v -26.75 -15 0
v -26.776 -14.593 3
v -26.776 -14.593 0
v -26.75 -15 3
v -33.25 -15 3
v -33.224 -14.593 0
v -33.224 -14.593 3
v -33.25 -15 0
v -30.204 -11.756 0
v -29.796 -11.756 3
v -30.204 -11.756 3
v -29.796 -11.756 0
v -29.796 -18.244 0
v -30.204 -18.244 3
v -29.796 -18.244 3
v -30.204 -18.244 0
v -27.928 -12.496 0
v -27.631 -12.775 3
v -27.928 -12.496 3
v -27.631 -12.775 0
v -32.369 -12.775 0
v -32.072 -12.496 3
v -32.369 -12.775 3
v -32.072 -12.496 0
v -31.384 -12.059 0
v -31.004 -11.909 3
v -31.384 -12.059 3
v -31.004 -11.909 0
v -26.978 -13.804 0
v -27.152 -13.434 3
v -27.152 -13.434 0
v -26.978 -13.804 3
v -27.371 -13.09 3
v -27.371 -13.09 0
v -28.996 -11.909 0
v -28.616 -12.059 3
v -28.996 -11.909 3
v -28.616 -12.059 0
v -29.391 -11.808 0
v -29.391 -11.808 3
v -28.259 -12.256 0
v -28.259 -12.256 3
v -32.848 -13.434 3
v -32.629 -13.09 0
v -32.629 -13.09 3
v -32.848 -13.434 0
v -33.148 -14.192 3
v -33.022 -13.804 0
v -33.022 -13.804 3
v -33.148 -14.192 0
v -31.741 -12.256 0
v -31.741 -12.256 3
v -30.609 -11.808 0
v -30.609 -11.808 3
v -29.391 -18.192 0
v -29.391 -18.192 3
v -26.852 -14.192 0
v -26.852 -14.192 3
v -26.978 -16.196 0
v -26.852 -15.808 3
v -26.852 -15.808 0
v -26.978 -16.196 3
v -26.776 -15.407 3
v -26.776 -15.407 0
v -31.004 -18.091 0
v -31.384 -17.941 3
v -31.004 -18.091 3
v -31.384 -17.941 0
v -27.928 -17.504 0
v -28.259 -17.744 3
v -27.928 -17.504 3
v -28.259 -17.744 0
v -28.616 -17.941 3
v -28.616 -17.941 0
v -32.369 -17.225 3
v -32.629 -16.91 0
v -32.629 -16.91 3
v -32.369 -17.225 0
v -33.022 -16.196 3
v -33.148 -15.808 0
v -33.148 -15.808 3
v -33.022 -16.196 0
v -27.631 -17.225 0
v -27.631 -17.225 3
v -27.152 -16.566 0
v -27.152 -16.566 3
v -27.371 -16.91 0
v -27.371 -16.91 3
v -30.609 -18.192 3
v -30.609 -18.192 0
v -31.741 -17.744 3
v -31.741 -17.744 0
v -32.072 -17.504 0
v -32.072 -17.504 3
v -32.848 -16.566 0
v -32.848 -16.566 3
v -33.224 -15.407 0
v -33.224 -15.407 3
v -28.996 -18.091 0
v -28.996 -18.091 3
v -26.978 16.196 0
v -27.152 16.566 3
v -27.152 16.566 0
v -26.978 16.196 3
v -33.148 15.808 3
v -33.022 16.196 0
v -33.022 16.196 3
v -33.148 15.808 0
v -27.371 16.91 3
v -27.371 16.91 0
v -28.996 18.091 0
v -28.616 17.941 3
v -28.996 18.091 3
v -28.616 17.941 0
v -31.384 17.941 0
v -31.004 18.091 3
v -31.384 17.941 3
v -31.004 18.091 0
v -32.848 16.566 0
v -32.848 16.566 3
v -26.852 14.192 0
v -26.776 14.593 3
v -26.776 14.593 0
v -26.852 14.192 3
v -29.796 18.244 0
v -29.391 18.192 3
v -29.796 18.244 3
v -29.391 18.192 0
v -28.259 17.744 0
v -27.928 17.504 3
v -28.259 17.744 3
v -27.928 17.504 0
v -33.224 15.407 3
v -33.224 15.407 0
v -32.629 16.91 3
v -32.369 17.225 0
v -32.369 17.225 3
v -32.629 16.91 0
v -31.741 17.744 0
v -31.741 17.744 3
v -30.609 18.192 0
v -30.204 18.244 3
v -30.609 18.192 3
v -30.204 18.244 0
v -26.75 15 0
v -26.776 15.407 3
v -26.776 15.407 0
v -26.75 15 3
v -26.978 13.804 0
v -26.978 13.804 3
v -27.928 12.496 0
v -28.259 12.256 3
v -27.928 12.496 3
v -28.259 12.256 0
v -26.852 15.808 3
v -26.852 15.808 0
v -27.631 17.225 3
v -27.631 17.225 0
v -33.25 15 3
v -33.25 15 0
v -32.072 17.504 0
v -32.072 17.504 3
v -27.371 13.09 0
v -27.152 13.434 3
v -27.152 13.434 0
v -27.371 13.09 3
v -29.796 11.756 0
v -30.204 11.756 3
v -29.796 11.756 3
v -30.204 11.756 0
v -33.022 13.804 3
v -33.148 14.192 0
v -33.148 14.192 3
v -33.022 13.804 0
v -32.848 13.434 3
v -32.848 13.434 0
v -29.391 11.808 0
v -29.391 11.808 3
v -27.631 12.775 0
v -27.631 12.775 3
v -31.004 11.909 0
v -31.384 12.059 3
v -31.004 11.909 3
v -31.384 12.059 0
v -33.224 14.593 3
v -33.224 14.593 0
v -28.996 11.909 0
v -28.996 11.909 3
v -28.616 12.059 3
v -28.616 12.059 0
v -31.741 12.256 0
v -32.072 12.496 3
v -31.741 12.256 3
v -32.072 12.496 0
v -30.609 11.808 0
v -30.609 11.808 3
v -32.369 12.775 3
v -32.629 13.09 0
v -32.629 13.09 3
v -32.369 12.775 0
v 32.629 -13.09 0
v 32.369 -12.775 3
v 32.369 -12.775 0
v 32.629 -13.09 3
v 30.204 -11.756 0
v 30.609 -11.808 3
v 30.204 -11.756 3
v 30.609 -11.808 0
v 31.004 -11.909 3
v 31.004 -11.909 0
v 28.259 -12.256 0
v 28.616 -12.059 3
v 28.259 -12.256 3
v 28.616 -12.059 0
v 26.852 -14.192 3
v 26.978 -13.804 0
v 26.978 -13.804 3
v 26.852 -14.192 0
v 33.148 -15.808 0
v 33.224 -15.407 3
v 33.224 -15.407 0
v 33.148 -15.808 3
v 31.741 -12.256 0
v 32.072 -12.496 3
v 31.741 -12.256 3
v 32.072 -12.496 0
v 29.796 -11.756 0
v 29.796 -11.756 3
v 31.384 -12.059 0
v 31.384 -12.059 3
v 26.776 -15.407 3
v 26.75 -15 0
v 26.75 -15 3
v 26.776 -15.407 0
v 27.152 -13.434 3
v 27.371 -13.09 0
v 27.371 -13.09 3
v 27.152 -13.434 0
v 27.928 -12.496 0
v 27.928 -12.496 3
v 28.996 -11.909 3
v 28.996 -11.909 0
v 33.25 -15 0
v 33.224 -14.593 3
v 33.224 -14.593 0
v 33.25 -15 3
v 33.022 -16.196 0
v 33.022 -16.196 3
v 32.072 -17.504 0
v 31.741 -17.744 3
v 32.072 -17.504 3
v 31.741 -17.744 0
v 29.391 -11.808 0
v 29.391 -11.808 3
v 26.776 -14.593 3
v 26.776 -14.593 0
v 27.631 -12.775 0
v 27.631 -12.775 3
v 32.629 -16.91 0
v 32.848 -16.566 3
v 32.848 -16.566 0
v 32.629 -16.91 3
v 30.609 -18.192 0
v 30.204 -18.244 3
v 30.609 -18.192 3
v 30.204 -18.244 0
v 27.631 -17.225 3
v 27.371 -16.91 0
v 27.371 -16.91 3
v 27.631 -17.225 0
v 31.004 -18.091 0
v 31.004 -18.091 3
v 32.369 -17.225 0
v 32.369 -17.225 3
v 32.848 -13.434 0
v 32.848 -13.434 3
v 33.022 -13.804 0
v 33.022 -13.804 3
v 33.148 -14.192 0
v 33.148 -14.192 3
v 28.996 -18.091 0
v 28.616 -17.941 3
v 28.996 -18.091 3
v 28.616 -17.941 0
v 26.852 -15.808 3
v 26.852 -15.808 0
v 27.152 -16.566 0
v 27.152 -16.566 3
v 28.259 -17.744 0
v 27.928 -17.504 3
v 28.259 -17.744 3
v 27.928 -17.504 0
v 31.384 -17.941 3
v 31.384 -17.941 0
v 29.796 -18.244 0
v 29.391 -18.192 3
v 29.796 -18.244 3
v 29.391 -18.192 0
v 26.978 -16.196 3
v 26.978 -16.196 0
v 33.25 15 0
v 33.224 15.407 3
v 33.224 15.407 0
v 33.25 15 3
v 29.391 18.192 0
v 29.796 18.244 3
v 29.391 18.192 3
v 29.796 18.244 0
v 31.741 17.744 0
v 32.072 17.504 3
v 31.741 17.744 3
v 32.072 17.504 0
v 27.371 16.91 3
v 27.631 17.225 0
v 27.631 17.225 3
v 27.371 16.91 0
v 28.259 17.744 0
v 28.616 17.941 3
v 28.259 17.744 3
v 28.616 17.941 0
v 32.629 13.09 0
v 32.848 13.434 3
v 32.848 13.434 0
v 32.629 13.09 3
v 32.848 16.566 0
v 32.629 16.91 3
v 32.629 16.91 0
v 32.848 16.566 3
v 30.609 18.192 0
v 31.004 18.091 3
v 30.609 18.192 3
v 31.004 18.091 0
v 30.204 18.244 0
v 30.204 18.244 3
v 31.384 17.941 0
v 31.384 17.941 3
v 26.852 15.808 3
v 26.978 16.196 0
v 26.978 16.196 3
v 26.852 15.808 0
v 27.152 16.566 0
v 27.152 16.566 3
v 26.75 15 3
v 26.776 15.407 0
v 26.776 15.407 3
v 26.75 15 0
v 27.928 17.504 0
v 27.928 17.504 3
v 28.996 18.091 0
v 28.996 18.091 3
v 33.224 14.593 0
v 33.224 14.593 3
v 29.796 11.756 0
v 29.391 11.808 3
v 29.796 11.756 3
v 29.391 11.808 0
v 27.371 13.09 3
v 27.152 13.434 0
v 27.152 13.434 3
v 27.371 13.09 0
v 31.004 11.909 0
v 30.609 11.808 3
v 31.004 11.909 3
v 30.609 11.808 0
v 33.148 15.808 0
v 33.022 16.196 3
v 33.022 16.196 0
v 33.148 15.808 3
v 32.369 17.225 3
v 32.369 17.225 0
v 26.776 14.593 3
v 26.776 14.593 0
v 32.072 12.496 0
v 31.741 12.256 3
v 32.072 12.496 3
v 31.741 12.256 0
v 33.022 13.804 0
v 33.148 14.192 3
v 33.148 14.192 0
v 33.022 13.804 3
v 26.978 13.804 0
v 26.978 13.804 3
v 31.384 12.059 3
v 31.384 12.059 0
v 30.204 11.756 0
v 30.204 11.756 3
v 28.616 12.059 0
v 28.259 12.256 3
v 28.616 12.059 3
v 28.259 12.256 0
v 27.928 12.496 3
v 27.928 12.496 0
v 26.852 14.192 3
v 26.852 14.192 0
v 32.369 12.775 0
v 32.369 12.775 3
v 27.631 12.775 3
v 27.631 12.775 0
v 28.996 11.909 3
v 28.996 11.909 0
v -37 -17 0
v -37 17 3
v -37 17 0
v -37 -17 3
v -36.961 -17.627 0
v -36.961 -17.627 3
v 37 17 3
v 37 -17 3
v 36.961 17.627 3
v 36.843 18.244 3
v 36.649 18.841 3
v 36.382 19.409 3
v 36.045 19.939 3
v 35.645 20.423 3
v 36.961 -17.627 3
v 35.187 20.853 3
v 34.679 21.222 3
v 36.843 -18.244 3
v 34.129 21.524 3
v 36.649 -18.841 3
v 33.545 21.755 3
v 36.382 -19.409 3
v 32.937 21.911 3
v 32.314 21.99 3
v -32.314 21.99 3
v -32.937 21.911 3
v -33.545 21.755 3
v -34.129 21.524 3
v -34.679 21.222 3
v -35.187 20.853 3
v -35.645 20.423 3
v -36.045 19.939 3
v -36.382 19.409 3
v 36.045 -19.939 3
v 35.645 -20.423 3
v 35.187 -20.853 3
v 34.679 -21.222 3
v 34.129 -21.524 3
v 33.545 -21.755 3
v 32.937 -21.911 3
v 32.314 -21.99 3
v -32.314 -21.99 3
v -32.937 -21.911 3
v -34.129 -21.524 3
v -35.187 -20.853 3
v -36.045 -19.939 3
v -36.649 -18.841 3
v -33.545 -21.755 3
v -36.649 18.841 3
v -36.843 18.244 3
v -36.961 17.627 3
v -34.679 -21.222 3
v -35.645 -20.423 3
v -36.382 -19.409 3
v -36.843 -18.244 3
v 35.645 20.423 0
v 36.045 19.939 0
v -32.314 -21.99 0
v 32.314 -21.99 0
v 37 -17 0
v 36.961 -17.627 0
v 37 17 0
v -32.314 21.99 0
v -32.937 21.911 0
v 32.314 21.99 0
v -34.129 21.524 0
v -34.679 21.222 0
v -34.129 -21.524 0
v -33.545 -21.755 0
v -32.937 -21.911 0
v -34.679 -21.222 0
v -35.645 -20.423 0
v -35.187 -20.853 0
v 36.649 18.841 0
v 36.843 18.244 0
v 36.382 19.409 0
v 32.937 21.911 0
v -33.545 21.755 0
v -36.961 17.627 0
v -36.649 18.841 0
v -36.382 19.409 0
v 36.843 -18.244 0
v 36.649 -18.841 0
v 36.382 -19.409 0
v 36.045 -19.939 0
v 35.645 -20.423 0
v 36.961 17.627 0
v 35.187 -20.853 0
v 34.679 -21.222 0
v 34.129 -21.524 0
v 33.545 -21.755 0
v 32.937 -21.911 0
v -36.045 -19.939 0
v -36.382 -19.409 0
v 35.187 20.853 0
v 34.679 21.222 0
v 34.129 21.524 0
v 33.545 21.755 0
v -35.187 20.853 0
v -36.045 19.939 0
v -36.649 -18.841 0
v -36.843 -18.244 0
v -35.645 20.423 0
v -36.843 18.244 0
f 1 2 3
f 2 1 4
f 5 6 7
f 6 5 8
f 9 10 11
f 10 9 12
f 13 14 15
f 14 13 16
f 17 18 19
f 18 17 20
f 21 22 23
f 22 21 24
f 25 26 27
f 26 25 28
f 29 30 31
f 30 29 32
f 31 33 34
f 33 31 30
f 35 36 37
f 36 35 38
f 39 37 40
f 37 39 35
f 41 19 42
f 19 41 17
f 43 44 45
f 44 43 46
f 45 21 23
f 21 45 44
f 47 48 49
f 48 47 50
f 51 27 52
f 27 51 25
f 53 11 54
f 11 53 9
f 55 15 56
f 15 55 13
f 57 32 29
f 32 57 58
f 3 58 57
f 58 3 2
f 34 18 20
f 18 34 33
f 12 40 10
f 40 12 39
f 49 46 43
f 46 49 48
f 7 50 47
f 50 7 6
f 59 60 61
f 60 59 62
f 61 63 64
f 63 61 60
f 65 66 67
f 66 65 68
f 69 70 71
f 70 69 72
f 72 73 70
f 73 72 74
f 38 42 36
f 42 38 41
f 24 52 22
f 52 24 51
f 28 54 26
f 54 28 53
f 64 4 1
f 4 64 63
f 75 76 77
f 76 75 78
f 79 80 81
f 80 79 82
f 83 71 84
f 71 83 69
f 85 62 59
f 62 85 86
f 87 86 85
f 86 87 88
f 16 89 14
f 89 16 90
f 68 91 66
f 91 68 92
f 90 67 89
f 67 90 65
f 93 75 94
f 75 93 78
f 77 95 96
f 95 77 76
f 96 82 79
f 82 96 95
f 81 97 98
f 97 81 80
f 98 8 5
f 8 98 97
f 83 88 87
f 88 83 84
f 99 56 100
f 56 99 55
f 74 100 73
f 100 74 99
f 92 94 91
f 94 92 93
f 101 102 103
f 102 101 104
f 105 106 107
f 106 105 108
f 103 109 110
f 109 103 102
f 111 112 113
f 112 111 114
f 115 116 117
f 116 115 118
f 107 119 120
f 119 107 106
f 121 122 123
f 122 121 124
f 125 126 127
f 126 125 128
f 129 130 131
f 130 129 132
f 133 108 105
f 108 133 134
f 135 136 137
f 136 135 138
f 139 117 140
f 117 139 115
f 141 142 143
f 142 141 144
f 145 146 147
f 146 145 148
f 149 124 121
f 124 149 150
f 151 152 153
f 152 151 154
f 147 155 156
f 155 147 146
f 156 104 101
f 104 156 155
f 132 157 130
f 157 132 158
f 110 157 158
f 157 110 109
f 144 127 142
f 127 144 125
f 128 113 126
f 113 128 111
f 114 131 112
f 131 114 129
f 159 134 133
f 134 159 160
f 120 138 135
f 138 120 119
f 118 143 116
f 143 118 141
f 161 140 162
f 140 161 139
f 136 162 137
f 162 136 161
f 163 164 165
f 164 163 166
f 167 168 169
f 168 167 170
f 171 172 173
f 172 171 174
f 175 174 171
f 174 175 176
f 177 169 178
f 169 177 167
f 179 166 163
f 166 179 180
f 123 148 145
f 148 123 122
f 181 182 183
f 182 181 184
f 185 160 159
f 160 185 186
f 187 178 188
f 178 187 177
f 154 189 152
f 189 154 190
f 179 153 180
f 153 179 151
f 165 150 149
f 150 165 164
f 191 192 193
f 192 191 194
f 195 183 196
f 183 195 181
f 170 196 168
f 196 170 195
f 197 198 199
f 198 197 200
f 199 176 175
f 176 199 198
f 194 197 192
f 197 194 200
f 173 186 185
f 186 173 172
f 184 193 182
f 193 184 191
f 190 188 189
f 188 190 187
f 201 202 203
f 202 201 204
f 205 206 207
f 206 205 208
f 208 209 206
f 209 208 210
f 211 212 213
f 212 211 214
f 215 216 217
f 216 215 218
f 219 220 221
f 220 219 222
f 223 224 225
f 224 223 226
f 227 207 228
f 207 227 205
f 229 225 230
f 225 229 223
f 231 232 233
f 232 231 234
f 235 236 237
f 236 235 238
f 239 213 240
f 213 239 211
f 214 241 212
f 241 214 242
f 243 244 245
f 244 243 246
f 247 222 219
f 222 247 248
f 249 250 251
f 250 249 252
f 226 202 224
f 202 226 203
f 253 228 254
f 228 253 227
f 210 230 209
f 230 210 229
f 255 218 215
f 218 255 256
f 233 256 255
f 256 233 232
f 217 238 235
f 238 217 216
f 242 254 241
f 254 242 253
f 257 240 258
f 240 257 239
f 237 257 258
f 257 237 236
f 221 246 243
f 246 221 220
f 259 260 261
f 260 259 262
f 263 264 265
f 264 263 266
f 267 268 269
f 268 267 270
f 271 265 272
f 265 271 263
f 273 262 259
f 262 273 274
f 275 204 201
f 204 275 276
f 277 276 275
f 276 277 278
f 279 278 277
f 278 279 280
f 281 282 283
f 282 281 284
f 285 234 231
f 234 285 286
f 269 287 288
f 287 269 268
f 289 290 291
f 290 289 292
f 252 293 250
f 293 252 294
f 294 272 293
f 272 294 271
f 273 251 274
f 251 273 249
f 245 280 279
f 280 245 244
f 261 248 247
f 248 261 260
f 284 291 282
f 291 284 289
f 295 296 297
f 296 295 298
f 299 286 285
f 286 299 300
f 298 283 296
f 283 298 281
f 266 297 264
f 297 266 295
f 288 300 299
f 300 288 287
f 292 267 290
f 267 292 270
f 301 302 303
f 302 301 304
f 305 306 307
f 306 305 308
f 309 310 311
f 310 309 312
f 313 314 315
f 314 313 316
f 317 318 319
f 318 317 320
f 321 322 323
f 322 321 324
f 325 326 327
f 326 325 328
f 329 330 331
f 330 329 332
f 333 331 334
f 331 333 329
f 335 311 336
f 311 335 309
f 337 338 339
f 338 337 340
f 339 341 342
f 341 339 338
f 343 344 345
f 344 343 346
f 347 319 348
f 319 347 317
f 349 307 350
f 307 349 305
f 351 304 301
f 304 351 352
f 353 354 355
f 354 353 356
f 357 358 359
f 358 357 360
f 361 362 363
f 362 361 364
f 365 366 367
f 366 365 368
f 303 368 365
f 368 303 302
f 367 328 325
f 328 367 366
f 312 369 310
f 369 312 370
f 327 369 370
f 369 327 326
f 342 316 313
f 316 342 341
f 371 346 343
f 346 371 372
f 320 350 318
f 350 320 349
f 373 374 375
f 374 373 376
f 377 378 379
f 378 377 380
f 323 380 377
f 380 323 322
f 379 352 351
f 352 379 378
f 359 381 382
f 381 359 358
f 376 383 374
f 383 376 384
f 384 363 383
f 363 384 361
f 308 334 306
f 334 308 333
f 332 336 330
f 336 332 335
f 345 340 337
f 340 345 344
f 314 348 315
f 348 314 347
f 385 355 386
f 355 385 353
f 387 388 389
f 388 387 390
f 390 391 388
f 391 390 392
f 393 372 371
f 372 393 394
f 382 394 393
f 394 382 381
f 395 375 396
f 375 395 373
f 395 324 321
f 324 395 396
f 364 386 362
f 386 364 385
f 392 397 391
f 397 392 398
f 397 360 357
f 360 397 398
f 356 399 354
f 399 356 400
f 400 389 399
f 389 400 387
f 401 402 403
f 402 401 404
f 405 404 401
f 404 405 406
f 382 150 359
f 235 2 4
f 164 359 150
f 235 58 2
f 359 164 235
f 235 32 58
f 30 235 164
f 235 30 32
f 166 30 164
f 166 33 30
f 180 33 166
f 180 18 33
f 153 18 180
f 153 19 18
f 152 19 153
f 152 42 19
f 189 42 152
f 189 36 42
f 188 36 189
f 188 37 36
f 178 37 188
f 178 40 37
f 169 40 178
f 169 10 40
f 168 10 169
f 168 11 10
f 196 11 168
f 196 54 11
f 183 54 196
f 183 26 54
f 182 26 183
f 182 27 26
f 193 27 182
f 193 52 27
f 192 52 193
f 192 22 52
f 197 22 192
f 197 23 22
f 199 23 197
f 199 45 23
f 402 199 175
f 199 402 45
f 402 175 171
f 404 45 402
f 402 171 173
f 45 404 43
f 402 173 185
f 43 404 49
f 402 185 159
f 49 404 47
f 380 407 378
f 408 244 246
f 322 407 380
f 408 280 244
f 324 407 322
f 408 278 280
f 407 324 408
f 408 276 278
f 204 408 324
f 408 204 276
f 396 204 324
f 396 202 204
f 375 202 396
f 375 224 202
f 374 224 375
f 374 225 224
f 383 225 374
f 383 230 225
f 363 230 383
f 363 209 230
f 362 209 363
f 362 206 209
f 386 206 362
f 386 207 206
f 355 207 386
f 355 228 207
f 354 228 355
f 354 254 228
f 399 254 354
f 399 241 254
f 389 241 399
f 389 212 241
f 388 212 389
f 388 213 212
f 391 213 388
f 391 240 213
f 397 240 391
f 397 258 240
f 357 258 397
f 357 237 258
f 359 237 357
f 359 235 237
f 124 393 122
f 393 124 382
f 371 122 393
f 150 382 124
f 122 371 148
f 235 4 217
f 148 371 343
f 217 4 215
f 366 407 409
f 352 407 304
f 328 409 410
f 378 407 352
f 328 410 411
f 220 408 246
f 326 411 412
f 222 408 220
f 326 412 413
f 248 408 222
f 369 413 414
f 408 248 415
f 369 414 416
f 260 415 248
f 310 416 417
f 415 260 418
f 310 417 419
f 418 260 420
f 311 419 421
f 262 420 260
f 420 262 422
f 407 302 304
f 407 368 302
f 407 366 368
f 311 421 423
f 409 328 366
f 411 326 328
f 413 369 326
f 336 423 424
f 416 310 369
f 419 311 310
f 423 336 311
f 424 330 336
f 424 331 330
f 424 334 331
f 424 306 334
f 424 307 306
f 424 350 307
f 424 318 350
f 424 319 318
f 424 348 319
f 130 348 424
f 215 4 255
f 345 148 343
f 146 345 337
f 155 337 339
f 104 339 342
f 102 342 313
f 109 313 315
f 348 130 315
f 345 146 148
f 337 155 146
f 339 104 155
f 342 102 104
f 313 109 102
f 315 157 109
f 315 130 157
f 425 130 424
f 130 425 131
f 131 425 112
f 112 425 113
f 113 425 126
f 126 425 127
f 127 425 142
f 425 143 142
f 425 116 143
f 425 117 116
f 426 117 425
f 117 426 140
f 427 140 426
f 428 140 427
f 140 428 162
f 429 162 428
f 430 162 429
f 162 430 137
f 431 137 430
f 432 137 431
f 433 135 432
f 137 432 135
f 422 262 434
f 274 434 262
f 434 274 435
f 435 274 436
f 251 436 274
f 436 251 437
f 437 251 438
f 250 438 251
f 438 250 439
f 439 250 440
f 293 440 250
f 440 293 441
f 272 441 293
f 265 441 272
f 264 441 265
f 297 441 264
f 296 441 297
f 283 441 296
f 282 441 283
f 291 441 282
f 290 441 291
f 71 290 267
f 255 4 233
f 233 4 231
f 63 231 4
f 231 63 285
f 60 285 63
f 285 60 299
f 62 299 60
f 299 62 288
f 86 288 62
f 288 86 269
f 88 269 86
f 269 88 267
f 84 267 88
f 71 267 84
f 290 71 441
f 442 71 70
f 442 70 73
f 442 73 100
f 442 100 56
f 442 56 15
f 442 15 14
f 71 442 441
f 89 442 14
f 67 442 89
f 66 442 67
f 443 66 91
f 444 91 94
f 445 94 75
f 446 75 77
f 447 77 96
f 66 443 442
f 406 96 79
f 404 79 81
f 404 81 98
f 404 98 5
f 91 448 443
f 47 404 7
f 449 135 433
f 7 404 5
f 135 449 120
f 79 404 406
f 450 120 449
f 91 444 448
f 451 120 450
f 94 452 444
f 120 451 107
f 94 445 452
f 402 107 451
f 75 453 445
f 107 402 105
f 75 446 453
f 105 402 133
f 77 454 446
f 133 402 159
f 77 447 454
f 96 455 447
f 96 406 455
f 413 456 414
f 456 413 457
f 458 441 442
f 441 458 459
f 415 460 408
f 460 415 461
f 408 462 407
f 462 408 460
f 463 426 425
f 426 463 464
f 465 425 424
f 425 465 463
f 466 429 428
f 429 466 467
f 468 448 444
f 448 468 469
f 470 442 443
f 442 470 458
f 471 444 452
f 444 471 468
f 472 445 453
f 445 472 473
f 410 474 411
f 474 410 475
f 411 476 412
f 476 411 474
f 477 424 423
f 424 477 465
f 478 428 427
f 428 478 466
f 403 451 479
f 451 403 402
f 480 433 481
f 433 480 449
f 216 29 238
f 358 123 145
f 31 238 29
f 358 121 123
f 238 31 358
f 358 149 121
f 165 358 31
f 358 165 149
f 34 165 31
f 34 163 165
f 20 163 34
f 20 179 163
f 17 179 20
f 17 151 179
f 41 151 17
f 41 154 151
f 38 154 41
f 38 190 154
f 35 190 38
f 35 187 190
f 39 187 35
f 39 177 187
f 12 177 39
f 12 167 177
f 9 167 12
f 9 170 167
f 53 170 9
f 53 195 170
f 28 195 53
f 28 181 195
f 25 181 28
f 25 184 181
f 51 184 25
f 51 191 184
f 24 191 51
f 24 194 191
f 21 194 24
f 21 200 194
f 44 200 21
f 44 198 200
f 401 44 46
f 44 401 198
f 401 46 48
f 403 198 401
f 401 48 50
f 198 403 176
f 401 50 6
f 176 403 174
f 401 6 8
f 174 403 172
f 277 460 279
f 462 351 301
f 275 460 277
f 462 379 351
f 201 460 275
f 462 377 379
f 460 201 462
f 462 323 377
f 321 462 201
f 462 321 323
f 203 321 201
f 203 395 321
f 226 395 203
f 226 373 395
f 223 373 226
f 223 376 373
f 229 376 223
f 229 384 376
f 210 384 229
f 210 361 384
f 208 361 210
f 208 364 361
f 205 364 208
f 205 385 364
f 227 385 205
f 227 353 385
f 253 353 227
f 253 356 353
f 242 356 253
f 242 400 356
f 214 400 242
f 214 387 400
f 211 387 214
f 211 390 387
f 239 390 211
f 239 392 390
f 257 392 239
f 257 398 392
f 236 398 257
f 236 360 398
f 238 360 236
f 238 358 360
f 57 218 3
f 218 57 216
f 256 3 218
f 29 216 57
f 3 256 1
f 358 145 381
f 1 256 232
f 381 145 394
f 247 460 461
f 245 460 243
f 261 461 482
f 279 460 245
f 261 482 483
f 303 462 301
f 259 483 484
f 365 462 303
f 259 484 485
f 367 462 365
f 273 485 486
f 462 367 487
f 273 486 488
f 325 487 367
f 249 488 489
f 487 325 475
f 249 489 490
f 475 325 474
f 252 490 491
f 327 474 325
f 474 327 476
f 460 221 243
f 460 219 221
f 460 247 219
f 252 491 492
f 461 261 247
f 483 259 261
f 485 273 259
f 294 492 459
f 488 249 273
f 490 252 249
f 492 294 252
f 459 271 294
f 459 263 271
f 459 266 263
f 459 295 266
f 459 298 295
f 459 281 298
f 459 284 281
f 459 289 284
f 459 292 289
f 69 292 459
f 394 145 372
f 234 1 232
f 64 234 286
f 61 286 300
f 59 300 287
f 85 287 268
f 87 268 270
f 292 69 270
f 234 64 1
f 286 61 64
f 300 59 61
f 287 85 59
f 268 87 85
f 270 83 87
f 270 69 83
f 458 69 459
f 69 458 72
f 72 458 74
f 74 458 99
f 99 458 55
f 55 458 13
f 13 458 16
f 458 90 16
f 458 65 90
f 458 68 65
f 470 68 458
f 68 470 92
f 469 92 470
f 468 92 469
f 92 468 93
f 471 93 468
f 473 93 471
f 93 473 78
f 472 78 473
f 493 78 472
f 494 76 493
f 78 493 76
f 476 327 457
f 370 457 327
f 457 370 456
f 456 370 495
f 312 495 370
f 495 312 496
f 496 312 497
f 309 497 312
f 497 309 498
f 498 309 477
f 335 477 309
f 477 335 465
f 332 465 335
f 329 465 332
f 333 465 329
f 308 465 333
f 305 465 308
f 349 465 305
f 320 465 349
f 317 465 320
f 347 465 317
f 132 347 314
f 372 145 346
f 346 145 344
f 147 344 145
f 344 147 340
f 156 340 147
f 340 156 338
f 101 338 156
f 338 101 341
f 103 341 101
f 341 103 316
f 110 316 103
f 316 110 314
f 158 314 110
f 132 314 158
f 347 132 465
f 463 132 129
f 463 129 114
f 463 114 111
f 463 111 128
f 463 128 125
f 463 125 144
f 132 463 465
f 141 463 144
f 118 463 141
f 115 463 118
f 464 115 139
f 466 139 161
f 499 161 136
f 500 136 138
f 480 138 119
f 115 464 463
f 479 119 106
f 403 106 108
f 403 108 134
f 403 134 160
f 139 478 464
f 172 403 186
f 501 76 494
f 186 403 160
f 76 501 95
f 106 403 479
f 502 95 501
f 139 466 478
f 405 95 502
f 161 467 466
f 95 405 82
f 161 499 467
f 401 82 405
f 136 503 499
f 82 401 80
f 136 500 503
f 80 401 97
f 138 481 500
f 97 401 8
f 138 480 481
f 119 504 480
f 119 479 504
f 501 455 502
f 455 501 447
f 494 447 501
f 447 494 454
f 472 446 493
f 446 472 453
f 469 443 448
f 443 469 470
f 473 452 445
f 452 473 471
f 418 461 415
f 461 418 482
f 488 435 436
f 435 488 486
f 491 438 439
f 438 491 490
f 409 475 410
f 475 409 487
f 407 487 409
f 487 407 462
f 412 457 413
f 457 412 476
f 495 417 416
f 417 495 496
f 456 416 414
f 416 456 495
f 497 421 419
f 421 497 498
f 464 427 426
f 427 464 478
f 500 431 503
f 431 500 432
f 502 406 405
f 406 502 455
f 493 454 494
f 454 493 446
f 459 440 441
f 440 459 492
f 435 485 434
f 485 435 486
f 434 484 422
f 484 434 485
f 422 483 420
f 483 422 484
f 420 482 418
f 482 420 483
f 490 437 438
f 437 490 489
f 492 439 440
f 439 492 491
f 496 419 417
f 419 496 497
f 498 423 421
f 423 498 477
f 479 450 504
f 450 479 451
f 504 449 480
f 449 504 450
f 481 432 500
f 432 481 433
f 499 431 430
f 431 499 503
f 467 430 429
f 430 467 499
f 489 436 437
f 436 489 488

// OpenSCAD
$fn = 50;


difference() {
	union() {
		hull() {
			translate(v = [-32.0000000000, 17.0000000000, 0]) {
				cylinder(h = 3, r = 5);
			}
			translate(v = [32.0000000000, 17.0000000000, 0]) {
				cylinder(h = 3, r = 5);
			}
			translate(v = [-32.0000000000, -17.0000000000, 0]) {
				cylinder(h = 3, r = 5);
			}
			translate(v = [32.0000000000, -17.0000000000, 0]) {
				cylinder(h = 3, r = 5);
			}
		}
	}
	union() {
		translate(v = [-30.0000000000, -15.0000000000, -100.0000000000]) {
			cylinder(h = 200, r = 3.2500000000);
		}
		translate(v = [-30.0000000000, 15.0000000000, -100.0000000000]) {
			cylinder(h = 200, r = 3.2500000000);
		}
		translate(v = [30.0000000000, -15.0000000000, -100.0000000000]) {
			cylinder(h = 200, r = 3.2500000000);
		}
		translate(v = [30.0000000000, 15.0000000000, -100.0000000000]) {
			cylinder(h = 200, r = 3.2500000000);
		}
	}
}
